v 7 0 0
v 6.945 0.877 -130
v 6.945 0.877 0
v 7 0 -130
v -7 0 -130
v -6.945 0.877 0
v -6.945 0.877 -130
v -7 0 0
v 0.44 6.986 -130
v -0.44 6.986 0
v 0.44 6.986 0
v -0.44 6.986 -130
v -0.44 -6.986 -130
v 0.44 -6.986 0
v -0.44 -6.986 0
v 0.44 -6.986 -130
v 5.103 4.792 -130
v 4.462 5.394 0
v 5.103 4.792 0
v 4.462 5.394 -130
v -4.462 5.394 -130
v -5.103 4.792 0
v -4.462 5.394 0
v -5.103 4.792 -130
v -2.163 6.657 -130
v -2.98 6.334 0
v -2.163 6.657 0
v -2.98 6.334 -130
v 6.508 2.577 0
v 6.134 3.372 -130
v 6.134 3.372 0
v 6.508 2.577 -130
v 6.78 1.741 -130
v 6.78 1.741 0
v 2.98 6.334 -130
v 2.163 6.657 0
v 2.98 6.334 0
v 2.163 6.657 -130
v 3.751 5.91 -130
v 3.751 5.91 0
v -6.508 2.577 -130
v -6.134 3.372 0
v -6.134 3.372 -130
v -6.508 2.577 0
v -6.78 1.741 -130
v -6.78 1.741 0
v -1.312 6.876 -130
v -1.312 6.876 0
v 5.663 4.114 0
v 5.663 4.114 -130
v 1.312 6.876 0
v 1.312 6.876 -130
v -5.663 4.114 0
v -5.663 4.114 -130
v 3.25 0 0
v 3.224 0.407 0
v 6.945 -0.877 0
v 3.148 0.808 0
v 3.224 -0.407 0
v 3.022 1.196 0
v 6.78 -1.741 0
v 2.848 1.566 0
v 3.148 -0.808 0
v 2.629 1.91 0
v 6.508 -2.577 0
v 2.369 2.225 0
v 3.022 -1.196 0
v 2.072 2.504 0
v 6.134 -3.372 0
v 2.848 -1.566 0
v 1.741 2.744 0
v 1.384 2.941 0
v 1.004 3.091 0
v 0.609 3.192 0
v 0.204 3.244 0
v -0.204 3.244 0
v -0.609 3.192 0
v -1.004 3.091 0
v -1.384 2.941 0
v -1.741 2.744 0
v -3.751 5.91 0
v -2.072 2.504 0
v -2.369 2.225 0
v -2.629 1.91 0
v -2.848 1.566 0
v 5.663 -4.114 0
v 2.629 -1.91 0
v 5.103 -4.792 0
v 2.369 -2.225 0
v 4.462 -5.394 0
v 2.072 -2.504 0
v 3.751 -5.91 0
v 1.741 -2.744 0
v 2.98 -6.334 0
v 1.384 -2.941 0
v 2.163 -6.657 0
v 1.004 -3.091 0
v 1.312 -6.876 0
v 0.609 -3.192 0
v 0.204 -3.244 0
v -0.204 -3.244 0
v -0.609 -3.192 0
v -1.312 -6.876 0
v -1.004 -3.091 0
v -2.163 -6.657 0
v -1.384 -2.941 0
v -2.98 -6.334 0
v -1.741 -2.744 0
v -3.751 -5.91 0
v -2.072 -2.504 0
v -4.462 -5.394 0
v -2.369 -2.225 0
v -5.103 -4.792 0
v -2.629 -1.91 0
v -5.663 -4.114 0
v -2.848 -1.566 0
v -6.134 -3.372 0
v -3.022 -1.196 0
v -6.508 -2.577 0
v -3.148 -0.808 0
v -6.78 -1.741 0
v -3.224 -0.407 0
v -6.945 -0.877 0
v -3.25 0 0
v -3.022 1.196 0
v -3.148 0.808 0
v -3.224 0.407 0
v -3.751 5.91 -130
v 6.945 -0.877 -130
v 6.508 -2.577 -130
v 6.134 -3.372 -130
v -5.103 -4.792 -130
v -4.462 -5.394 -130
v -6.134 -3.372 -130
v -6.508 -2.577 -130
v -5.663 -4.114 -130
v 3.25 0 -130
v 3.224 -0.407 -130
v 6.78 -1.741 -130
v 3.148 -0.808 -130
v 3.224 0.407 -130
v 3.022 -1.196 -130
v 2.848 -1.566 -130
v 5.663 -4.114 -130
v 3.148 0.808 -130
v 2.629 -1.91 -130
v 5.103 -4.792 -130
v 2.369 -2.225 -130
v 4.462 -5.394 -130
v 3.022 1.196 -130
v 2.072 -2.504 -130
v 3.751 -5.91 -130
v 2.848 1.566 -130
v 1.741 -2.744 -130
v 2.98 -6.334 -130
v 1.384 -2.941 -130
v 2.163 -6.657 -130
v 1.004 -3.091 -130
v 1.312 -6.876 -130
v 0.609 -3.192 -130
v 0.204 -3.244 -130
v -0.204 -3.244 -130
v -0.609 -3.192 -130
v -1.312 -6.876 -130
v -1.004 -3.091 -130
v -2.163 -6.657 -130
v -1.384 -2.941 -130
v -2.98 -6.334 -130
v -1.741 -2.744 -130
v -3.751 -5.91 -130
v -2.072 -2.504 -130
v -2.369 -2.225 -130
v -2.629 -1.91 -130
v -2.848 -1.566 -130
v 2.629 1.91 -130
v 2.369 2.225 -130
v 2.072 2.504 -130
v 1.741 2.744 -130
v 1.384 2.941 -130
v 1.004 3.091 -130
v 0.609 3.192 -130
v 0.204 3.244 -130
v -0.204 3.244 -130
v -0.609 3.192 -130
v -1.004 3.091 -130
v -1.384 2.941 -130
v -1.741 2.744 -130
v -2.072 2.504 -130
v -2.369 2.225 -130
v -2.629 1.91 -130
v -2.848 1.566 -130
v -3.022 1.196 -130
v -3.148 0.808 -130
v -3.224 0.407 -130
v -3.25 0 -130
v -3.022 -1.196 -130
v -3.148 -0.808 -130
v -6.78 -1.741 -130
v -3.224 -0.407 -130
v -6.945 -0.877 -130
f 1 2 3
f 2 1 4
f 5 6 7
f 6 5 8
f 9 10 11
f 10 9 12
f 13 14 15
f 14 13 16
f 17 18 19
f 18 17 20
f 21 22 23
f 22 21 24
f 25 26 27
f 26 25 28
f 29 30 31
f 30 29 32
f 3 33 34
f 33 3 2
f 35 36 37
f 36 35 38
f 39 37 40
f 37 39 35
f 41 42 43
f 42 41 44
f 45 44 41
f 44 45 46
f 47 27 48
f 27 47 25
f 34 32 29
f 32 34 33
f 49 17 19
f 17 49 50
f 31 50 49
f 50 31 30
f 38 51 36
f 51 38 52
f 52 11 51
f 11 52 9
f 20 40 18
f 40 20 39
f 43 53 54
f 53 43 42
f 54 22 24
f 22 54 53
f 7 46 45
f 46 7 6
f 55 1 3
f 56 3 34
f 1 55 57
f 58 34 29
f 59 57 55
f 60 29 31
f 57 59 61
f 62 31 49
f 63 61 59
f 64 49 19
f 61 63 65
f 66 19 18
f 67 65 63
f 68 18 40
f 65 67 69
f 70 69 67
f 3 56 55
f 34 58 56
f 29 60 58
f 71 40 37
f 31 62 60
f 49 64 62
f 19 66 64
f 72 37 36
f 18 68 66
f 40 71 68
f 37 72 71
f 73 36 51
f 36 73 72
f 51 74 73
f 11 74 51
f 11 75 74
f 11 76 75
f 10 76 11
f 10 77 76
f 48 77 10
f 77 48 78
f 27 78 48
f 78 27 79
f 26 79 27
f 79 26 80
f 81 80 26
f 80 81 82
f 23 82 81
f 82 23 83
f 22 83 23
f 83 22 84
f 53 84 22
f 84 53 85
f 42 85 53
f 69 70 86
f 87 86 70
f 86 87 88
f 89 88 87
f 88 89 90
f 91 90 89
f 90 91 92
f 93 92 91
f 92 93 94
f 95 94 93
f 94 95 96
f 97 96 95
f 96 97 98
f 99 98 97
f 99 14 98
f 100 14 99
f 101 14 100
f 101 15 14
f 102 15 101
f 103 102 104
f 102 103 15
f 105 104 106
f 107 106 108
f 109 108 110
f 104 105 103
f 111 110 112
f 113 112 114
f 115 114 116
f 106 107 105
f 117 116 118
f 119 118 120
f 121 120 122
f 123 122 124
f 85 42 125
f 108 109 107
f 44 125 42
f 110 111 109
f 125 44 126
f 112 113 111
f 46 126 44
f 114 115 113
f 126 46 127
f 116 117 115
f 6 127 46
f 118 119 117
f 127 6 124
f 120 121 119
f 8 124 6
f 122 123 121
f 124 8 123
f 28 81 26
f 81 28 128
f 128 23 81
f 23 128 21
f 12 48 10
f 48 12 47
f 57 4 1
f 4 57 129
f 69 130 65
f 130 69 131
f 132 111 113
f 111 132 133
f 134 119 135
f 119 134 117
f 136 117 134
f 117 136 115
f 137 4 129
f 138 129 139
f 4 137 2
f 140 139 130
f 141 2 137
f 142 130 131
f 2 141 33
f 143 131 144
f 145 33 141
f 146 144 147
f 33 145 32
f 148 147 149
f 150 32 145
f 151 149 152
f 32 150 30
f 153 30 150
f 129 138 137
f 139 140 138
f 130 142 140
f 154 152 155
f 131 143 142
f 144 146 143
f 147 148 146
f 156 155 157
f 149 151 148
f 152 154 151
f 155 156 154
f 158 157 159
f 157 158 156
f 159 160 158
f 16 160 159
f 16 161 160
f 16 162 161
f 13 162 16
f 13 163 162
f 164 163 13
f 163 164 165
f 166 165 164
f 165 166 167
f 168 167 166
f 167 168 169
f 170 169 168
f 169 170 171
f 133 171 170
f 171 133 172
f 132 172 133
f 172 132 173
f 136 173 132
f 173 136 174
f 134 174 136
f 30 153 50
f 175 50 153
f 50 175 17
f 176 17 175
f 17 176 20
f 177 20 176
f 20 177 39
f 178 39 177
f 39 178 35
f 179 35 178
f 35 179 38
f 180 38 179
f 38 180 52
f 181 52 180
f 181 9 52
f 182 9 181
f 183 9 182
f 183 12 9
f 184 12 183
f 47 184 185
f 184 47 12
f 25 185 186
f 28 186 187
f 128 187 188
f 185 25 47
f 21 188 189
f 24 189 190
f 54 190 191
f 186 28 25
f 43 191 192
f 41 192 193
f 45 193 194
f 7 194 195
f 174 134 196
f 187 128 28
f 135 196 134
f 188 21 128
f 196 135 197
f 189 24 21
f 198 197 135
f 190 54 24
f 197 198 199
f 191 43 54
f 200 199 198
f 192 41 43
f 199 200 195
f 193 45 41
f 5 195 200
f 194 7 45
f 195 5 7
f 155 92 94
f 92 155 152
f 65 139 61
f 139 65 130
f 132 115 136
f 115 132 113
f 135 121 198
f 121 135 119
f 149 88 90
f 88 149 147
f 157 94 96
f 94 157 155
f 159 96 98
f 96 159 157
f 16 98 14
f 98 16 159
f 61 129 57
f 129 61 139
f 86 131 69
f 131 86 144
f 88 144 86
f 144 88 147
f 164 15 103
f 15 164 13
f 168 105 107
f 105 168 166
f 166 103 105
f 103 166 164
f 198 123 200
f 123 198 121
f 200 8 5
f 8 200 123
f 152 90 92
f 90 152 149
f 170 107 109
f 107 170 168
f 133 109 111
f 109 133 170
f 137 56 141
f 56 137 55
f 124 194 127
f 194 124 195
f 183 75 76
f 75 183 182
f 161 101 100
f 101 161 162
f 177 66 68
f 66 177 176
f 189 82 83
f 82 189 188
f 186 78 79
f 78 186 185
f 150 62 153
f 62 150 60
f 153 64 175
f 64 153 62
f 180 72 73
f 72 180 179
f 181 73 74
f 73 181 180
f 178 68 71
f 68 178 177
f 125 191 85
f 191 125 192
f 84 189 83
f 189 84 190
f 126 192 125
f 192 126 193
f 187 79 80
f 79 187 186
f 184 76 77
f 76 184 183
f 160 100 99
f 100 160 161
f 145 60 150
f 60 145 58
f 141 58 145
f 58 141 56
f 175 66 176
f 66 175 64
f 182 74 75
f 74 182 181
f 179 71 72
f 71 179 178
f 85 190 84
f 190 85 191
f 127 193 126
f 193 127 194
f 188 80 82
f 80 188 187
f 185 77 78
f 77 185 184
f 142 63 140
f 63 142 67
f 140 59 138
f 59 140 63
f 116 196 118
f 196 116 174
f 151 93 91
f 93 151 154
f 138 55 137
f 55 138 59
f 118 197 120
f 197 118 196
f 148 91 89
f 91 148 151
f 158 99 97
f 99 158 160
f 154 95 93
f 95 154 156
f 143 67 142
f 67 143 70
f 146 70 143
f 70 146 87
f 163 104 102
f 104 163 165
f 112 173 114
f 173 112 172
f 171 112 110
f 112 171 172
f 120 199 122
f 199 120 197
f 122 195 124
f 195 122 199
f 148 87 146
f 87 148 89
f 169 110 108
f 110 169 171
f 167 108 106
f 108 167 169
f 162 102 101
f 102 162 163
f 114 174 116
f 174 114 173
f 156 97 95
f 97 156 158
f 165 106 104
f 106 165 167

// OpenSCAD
$fn = 50;


difference() {
	union() {
		translate(v = [0, 0, -130.0000000000]) {
			cylinder(h = 130, r = 7.0000000000);
		}
		cylinder(h = 0, r = 13.0000000000);
	}
	union() {
		#translate(v = [0, 0, -130]) {
			cylinder(h = 130, r = 3.2500000000);
		}
	}
}
